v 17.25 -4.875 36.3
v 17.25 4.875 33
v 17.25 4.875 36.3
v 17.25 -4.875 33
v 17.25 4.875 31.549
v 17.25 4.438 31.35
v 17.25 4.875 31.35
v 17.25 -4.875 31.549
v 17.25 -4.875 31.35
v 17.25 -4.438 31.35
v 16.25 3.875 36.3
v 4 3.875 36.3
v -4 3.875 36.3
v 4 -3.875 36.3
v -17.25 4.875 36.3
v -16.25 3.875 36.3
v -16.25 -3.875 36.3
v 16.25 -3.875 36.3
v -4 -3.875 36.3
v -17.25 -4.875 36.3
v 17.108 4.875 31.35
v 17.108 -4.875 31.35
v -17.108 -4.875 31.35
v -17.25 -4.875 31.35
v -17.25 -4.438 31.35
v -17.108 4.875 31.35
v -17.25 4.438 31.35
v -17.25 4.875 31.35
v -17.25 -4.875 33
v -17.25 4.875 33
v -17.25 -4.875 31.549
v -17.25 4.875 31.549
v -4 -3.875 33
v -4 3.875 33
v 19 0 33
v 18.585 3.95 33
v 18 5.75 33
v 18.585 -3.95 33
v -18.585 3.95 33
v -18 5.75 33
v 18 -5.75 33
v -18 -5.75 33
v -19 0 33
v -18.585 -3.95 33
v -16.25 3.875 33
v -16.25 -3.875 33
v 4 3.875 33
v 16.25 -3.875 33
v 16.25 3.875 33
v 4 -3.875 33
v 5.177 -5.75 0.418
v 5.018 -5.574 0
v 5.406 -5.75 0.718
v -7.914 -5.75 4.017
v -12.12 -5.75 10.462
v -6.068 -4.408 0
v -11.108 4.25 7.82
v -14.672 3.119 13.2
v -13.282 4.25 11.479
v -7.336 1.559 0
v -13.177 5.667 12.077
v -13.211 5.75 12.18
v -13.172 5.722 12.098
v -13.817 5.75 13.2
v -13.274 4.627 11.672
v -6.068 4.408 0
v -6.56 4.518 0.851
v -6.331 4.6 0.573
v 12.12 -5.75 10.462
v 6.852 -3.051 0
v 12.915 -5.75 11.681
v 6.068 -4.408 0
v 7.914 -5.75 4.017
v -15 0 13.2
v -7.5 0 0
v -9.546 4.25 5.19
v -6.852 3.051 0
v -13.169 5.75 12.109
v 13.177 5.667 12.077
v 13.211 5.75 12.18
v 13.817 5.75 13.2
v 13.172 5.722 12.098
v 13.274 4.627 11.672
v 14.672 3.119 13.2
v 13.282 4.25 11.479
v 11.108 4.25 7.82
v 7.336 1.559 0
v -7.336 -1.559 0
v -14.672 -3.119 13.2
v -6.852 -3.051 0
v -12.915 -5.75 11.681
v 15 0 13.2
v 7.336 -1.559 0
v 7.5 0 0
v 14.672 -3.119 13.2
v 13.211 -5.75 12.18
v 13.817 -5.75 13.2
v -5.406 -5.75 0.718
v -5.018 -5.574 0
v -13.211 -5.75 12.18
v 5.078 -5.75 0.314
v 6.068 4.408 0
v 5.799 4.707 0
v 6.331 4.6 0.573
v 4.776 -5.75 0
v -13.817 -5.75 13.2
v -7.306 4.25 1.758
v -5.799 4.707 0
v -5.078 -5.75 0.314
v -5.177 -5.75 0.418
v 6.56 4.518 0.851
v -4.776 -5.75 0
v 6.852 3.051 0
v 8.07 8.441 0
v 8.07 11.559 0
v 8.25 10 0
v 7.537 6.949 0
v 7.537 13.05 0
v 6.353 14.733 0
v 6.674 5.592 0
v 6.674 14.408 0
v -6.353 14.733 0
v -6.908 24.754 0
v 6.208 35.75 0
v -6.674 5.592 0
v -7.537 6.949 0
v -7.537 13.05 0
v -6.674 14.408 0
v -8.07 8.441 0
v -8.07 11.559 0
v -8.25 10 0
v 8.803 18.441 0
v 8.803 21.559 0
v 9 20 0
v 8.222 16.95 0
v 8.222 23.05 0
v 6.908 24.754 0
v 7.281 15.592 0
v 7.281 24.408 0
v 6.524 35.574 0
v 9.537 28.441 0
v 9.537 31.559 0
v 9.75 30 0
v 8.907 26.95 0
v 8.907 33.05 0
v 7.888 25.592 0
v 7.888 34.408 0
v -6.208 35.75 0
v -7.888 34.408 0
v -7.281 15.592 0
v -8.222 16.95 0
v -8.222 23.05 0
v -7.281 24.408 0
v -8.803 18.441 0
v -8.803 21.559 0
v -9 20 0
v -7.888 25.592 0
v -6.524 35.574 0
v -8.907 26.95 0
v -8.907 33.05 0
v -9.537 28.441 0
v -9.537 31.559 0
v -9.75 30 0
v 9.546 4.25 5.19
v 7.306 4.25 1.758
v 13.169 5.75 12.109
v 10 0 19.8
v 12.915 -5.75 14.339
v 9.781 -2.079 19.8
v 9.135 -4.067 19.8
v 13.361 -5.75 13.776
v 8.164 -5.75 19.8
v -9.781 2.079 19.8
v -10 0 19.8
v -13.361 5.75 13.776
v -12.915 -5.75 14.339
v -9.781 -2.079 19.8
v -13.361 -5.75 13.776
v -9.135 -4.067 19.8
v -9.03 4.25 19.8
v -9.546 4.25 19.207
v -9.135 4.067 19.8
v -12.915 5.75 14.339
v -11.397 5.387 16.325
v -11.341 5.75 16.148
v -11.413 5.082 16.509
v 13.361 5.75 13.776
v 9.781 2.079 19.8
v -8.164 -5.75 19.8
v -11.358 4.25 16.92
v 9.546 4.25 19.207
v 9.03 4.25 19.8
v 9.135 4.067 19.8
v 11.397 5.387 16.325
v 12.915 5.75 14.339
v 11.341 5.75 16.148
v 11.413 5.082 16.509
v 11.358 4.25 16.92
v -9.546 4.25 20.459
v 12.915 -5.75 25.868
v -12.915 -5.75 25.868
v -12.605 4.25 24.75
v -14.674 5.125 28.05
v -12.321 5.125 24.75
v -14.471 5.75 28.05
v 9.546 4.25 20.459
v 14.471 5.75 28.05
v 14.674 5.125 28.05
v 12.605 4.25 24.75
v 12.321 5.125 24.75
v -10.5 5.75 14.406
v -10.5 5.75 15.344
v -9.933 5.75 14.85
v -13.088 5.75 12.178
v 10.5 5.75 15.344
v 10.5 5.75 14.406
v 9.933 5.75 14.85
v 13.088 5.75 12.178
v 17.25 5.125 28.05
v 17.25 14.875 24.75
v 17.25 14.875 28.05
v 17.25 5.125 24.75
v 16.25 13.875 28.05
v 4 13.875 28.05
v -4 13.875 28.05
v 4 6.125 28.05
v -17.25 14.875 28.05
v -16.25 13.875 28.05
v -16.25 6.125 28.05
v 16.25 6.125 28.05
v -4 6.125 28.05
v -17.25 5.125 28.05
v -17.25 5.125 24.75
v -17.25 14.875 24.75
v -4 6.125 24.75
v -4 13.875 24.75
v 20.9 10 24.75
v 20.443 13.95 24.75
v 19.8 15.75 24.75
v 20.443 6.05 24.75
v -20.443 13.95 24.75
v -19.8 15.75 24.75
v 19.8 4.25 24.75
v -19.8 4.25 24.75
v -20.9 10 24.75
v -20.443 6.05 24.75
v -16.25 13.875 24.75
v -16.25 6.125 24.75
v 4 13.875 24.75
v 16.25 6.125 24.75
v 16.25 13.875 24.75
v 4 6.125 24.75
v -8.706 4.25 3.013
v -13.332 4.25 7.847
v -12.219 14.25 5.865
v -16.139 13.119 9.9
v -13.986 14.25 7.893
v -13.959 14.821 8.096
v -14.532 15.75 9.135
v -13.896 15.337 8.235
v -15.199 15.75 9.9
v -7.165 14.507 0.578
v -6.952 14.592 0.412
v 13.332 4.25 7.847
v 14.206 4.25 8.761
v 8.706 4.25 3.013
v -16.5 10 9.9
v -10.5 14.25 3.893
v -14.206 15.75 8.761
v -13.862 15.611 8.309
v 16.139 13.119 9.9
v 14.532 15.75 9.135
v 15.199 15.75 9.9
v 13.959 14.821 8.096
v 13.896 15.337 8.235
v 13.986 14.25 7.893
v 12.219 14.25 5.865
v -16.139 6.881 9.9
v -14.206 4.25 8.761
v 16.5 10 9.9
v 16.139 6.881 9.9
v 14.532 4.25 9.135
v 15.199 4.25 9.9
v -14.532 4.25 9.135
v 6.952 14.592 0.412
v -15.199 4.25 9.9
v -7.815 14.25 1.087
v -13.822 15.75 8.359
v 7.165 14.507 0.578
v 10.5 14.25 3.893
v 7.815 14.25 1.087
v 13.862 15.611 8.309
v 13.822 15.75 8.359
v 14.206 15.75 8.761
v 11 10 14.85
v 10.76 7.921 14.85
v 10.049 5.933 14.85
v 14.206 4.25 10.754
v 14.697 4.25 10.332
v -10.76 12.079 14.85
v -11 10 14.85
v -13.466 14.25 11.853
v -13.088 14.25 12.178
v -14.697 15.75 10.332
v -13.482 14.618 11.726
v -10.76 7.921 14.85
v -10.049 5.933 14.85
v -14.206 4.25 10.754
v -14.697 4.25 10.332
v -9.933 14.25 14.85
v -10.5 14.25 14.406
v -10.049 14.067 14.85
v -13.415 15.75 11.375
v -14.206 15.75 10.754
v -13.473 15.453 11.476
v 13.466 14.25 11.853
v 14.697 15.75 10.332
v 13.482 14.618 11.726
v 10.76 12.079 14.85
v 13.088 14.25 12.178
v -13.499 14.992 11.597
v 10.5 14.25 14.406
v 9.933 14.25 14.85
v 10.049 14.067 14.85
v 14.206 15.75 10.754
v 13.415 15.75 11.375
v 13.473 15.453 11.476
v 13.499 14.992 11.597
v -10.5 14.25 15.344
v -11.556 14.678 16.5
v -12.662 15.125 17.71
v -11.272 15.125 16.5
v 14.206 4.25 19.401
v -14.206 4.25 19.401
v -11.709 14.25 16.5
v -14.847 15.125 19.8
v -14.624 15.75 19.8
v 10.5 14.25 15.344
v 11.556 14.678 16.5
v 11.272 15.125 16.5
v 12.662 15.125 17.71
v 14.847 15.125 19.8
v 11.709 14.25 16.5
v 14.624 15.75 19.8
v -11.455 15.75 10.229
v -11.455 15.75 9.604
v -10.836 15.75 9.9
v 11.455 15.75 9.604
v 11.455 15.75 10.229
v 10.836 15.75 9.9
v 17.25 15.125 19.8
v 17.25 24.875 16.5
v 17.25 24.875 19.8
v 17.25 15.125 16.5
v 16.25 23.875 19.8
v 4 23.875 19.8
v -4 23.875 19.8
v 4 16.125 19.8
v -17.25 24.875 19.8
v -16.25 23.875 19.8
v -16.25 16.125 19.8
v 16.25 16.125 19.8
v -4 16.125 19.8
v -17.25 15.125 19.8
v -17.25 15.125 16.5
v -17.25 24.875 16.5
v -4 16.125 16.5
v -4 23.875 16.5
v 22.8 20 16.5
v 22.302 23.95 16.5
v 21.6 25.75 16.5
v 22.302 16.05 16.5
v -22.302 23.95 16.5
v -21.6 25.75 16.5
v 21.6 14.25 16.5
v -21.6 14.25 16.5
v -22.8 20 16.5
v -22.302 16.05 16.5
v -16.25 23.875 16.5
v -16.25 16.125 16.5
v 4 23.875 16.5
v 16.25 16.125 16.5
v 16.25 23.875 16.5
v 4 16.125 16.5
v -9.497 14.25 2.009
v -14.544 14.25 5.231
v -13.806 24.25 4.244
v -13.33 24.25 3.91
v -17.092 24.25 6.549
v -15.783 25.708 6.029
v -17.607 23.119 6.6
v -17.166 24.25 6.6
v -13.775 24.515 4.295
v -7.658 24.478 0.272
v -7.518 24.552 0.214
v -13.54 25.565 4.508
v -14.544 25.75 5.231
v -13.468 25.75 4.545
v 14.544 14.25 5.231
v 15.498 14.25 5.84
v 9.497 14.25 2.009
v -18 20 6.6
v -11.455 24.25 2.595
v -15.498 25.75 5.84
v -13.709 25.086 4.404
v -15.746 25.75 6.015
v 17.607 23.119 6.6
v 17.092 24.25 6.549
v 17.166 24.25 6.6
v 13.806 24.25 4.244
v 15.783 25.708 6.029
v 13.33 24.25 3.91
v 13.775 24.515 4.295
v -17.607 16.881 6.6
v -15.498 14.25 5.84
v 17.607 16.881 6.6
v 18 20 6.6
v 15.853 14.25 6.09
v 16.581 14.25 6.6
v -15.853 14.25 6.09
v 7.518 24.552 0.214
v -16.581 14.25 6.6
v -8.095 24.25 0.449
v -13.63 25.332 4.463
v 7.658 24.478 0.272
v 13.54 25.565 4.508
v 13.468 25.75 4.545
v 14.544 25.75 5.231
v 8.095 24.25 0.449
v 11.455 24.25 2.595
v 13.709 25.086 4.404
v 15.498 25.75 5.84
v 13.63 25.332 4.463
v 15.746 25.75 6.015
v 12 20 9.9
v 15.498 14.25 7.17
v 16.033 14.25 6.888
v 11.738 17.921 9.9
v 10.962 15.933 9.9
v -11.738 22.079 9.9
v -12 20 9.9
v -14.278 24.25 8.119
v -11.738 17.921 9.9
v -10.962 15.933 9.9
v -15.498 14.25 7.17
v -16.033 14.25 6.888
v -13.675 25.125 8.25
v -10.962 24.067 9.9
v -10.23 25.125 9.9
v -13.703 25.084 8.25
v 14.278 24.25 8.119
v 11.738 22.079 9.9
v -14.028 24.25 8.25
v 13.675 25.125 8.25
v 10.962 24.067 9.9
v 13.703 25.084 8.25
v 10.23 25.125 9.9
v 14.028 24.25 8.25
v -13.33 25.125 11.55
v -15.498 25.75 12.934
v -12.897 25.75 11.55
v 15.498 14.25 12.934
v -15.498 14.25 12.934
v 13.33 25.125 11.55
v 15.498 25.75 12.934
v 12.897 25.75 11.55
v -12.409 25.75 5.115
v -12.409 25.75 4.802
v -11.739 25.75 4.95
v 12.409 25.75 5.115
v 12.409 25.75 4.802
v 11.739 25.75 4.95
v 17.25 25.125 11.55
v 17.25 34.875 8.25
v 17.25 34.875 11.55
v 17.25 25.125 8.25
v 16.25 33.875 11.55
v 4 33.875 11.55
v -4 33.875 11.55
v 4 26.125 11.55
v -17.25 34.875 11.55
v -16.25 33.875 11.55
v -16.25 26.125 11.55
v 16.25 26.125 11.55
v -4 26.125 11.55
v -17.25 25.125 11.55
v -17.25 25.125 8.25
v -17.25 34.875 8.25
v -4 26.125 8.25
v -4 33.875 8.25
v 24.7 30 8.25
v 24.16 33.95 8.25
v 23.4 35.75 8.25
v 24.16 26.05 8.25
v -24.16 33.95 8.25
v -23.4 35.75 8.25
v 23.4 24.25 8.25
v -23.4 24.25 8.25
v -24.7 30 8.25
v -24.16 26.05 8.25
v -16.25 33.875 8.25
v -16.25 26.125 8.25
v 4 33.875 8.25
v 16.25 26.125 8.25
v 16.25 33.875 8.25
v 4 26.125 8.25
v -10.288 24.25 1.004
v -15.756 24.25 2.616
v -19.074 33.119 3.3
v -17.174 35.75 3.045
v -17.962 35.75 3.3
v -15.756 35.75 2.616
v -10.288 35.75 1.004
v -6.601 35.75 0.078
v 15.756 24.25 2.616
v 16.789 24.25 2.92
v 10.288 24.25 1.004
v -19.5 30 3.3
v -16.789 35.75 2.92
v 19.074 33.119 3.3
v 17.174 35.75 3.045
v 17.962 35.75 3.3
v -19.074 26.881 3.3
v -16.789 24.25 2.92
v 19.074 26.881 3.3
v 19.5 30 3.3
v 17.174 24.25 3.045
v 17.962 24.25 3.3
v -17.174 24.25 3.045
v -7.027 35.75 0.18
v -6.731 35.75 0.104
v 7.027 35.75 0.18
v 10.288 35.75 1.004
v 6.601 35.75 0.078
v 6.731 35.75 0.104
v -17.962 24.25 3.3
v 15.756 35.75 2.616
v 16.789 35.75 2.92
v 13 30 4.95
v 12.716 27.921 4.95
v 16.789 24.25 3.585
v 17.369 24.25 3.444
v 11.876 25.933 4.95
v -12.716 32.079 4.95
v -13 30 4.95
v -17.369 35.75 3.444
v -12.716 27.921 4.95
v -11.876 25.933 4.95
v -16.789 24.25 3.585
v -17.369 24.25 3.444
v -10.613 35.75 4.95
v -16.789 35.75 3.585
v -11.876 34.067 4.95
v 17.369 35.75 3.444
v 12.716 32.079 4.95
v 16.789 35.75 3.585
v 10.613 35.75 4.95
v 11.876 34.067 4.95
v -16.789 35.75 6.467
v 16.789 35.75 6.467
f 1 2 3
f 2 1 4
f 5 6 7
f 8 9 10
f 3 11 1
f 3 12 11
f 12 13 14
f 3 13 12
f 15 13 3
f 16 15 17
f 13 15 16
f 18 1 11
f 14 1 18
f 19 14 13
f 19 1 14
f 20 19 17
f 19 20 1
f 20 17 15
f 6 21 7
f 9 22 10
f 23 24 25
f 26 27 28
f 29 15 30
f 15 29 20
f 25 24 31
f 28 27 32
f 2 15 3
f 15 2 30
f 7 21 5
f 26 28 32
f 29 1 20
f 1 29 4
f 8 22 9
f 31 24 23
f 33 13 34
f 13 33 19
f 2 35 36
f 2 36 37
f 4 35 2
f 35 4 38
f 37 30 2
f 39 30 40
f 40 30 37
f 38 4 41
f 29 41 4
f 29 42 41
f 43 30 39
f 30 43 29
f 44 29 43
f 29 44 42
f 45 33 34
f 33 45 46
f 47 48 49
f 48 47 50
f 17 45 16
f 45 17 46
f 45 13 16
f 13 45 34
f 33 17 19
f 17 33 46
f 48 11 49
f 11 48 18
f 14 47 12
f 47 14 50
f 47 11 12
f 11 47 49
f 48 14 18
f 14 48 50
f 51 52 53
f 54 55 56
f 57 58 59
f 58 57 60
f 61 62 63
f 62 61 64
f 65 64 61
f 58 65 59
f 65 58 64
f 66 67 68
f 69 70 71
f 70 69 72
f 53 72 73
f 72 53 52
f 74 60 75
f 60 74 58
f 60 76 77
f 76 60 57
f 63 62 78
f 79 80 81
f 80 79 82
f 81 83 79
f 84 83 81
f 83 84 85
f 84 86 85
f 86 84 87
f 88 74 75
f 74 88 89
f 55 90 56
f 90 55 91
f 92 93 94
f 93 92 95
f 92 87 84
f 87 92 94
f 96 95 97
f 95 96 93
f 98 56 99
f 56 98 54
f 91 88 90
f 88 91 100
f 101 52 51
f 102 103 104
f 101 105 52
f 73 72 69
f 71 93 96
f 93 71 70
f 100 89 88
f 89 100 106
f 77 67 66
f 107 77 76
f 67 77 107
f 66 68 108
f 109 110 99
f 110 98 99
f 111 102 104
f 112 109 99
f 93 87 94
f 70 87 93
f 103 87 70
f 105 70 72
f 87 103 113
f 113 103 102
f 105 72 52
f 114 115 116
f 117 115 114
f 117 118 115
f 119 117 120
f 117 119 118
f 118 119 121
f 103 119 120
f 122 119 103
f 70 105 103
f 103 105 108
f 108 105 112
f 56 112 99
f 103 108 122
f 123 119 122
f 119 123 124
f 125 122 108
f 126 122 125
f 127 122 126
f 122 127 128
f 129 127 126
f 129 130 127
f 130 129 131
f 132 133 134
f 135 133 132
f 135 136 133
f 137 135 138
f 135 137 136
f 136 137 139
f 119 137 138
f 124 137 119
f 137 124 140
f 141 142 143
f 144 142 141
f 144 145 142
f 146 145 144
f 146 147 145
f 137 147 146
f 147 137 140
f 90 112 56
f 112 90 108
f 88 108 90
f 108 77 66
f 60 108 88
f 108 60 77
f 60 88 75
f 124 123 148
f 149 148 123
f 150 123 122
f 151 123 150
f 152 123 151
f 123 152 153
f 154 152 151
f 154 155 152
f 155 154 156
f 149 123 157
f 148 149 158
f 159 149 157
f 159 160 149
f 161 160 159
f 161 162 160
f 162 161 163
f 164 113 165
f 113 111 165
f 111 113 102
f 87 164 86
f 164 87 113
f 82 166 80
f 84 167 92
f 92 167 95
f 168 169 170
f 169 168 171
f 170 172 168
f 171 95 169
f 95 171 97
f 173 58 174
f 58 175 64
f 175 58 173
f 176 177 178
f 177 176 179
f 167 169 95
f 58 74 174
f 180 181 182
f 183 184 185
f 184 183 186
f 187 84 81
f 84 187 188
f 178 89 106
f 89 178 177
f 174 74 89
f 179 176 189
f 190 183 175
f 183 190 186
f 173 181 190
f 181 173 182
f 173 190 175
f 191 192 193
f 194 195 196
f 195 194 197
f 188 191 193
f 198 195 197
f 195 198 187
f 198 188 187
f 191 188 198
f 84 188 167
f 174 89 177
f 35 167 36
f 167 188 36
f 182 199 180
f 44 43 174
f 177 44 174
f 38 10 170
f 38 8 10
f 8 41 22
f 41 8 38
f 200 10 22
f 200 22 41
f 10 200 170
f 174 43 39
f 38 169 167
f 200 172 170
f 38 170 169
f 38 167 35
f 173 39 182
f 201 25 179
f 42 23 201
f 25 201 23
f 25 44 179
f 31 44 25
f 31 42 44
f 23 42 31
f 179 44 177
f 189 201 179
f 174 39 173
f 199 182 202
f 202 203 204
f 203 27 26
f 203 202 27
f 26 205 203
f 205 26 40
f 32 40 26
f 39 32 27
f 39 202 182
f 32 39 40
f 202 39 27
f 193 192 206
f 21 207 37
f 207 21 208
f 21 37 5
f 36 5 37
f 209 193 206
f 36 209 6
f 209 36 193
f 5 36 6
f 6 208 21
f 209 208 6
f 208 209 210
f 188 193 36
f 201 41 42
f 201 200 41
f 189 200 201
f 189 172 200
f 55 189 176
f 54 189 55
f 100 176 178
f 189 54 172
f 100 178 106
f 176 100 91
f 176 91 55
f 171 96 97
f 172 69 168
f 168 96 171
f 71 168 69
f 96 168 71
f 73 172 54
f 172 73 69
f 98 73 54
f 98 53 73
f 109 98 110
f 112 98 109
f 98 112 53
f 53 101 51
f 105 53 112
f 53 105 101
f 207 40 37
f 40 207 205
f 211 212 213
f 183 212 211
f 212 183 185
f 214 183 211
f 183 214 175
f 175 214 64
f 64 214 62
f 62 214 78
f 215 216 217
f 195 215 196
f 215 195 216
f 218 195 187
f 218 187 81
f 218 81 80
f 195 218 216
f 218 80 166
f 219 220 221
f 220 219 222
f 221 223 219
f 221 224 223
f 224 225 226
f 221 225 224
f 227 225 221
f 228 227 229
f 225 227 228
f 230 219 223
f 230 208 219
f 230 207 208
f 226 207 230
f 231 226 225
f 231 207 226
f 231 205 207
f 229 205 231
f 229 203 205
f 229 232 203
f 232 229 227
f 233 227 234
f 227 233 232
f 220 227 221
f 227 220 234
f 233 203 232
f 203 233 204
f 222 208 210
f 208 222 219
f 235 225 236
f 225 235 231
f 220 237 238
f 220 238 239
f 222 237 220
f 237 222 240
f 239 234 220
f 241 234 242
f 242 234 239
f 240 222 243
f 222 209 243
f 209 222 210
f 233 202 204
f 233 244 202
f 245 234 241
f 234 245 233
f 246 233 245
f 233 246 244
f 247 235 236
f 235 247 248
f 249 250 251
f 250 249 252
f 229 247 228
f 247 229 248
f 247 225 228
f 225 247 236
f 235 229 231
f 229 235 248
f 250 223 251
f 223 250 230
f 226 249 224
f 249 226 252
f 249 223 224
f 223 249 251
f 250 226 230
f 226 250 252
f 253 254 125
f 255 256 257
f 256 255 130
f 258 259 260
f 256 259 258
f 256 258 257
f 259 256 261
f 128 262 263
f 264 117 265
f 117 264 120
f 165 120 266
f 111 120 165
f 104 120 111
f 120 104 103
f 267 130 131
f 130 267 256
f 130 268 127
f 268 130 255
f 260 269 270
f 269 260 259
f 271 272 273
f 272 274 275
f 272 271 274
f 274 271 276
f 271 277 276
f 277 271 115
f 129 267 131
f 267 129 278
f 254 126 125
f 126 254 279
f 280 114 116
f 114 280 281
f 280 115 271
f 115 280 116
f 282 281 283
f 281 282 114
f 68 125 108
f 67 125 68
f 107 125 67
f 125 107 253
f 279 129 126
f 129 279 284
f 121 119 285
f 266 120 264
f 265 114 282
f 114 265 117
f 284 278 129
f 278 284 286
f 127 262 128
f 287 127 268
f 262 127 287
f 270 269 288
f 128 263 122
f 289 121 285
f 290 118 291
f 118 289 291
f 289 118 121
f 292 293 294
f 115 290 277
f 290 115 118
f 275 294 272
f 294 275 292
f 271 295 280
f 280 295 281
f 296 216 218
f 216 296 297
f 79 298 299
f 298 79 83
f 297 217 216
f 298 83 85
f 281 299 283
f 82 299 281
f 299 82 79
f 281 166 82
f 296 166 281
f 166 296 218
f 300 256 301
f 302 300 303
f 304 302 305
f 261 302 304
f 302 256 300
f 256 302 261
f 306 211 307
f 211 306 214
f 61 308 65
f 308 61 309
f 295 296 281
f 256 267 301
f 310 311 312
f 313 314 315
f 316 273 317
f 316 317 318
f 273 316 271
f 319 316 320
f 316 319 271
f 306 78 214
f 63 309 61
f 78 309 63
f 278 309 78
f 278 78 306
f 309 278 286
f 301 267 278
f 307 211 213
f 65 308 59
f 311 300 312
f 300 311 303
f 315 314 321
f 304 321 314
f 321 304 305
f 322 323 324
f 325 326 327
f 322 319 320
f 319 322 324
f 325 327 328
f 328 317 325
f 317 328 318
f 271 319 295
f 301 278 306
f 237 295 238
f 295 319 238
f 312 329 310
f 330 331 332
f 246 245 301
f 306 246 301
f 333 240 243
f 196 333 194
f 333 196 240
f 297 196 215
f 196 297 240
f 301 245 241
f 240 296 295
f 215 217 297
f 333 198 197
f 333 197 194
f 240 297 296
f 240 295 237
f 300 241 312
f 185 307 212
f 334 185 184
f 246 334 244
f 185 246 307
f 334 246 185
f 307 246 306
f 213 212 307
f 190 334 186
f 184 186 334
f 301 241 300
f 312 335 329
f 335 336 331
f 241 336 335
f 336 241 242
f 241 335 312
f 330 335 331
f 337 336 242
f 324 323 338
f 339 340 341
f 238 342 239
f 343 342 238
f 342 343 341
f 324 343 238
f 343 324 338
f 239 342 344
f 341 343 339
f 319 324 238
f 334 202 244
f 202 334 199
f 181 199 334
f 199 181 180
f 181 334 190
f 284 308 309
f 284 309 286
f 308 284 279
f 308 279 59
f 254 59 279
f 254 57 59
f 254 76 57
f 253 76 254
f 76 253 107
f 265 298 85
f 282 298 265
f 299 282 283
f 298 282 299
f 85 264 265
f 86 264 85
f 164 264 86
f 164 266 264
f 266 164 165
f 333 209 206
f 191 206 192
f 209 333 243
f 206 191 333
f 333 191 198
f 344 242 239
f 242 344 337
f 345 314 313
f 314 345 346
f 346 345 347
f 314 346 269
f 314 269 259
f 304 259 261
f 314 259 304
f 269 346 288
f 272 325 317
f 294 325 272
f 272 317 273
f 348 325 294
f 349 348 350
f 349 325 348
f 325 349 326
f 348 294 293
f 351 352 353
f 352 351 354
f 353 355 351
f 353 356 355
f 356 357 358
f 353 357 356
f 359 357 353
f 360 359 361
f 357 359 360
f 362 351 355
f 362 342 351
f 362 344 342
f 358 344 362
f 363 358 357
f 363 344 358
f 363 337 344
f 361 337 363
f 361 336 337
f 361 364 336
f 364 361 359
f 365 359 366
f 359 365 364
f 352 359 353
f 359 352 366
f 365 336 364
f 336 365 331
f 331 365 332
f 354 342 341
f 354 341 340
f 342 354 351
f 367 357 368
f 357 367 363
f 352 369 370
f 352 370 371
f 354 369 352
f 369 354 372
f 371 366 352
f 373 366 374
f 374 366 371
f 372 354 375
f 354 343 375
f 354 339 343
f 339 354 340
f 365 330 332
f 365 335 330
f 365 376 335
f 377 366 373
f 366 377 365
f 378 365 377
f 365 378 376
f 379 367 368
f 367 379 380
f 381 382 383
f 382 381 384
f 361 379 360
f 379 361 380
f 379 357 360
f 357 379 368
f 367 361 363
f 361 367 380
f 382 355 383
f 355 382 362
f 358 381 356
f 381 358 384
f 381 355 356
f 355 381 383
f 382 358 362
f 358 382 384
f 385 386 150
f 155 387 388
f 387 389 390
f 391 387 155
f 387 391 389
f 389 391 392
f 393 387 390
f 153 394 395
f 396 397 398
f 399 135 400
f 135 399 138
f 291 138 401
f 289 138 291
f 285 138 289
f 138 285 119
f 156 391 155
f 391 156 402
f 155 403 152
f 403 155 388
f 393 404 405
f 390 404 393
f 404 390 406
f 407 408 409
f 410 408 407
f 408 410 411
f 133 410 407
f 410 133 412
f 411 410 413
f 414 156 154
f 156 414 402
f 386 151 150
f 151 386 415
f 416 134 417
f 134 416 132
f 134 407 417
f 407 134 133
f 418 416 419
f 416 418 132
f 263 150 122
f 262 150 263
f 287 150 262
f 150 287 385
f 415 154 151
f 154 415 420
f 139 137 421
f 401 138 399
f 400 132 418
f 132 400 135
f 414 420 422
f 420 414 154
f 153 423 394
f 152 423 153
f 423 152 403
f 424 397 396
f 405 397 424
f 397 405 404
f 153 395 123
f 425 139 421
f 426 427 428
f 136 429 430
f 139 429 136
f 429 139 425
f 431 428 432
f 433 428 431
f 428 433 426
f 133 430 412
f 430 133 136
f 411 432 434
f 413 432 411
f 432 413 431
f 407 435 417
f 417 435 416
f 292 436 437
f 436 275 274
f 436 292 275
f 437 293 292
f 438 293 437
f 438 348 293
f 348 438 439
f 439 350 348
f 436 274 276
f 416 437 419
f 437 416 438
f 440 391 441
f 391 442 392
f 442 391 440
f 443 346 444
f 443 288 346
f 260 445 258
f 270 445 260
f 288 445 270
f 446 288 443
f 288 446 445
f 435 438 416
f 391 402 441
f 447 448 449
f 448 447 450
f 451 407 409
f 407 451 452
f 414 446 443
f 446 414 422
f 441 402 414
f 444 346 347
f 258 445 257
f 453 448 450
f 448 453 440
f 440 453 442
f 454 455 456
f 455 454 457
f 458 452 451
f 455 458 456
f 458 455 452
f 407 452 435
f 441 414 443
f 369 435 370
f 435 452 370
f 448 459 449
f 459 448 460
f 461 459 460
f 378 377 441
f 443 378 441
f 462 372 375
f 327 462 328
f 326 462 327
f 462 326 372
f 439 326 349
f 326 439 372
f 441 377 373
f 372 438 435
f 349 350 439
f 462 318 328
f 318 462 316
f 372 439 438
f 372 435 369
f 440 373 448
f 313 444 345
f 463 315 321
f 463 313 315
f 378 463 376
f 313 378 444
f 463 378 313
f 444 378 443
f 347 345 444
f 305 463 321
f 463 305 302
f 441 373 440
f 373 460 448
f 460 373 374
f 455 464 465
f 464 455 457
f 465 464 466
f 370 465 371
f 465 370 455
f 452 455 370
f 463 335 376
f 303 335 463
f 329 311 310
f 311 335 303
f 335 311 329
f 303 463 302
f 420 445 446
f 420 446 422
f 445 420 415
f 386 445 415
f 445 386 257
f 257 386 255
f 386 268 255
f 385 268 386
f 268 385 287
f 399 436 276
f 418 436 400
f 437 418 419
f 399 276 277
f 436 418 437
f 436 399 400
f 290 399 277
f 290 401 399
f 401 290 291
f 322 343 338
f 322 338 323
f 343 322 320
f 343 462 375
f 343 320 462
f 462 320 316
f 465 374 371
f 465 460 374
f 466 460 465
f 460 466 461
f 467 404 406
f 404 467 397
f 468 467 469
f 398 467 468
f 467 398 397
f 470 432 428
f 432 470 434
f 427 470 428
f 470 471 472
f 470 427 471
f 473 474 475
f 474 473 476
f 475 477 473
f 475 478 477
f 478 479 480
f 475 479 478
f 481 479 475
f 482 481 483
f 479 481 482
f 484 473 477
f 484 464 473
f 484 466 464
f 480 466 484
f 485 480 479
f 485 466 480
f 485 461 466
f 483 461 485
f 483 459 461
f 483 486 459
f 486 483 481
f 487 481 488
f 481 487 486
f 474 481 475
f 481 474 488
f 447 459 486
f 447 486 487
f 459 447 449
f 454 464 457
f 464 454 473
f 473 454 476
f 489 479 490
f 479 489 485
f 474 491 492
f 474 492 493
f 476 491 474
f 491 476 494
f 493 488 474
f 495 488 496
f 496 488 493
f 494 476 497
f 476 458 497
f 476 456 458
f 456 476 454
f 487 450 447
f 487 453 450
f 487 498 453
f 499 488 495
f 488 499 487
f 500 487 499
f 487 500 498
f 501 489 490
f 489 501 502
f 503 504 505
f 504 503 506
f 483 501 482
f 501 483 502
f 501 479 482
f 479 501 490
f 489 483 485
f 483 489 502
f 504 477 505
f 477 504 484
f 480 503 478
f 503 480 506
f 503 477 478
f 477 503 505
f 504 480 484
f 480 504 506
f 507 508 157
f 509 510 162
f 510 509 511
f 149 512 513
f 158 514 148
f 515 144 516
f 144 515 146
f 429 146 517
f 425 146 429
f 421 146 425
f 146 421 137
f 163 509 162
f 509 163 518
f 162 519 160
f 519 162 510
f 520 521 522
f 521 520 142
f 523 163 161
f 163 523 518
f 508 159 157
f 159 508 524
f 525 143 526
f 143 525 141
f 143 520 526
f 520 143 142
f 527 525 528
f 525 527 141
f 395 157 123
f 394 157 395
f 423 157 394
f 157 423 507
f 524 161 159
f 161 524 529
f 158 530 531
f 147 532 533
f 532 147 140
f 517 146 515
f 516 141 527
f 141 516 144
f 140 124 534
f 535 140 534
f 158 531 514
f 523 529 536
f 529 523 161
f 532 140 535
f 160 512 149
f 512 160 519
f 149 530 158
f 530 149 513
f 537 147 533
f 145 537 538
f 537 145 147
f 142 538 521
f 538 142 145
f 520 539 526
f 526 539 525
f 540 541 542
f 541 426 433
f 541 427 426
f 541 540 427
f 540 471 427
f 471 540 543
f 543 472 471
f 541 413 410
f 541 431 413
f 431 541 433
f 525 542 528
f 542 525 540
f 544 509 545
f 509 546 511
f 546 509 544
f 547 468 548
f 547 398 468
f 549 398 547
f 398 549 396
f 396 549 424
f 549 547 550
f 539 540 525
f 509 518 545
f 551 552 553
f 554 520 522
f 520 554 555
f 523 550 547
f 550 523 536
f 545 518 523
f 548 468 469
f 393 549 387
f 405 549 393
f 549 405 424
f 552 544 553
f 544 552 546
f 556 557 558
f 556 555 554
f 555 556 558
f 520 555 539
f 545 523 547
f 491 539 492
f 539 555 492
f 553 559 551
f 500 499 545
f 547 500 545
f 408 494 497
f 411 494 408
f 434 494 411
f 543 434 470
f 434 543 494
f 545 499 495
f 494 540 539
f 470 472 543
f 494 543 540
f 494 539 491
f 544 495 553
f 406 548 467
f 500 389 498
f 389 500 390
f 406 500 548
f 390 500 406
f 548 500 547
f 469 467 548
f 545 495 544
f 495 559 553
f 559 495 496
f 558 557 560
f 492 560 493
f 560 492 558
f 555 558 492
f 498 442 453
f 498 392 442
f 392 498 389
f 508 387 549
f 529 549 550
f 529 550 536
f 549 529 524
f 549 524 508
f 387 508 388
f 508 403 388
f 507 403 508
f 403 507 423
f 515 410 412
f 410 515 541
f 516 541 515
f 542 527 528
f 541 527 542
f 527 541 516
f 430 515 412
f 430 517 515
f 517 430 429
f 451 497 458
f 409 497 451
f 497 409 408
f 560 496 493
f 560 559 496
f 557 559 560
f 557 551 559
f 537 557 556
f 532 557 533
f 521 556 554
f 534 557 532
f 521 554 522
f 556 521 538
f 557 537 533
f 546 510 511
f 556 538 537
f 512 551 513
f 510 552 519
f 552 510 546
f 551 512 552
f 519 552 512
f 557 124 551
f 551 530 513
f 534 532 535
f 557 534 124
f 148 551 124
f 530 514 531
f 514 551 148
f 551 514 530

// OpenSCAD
$footW = 24.5;
$footH = 15.5;
$spacer = 16;
$depth = 5;
$rim = 2;
$blockW = $footW * 2 + $spacer*2;
$blockL = $footH + $spacer;

module footplate() {
    difference() {
        union() {
       //cube([$blockW, $blockL, $depth], true);
        translate([0, 0, $depth/2]) { 
            cube([$footW*2+$spacer + $rim*2, 
            $footH+$rim*2, $depth*3], true);
        }
        }
        translate([-($footW + $spacer/2), 
                   -$footH/2, 0]) {
            cube([$footW, $footH, 30], false);
        }
        translate([$spacer / 2, -$footH/2, 0]) {
            cube([$footW, $footH, 30], false);
        }
    }
}
module base() {
    difference() {
        union() {
            cylinder(40, 15, 30);
            translate([0, 0, 40]) { cylinder(20, 30, 20); }
            translate([0, 0, 60]) { cylinder(40, 20, 38); }
        }
        translate([0, -$blockL, 0]) {
            cube([200, 40, 300], true); 
        }
        translate([0, $blockL, 0]) {
            cube([200, 40, 300], true); 
        }
    }
}

scale([.5, .5, .33]) {
    union() {
         translate([0, 0, 100]) { footplate(); }
         base();
    }
    union() {
         translate([0, 20, 75]) { footplate(); }
          scale([1.1, 1, .75]) {
             translate([0, 20, 0]) { base(); }
          }
    } 
    union() {
         translate([0, 40, 50]) { footplate(); }
          scale([1.2, 1, .5]) {
             translate([0, 40, 0]) { base(); }
          }
    }
    union() {
         translate([0, 60, 25]) { footplate(); }
          scale([1.3, 1, .25]) {
             translate([0, 60, 0]) { base(); }
          }
    }
}
